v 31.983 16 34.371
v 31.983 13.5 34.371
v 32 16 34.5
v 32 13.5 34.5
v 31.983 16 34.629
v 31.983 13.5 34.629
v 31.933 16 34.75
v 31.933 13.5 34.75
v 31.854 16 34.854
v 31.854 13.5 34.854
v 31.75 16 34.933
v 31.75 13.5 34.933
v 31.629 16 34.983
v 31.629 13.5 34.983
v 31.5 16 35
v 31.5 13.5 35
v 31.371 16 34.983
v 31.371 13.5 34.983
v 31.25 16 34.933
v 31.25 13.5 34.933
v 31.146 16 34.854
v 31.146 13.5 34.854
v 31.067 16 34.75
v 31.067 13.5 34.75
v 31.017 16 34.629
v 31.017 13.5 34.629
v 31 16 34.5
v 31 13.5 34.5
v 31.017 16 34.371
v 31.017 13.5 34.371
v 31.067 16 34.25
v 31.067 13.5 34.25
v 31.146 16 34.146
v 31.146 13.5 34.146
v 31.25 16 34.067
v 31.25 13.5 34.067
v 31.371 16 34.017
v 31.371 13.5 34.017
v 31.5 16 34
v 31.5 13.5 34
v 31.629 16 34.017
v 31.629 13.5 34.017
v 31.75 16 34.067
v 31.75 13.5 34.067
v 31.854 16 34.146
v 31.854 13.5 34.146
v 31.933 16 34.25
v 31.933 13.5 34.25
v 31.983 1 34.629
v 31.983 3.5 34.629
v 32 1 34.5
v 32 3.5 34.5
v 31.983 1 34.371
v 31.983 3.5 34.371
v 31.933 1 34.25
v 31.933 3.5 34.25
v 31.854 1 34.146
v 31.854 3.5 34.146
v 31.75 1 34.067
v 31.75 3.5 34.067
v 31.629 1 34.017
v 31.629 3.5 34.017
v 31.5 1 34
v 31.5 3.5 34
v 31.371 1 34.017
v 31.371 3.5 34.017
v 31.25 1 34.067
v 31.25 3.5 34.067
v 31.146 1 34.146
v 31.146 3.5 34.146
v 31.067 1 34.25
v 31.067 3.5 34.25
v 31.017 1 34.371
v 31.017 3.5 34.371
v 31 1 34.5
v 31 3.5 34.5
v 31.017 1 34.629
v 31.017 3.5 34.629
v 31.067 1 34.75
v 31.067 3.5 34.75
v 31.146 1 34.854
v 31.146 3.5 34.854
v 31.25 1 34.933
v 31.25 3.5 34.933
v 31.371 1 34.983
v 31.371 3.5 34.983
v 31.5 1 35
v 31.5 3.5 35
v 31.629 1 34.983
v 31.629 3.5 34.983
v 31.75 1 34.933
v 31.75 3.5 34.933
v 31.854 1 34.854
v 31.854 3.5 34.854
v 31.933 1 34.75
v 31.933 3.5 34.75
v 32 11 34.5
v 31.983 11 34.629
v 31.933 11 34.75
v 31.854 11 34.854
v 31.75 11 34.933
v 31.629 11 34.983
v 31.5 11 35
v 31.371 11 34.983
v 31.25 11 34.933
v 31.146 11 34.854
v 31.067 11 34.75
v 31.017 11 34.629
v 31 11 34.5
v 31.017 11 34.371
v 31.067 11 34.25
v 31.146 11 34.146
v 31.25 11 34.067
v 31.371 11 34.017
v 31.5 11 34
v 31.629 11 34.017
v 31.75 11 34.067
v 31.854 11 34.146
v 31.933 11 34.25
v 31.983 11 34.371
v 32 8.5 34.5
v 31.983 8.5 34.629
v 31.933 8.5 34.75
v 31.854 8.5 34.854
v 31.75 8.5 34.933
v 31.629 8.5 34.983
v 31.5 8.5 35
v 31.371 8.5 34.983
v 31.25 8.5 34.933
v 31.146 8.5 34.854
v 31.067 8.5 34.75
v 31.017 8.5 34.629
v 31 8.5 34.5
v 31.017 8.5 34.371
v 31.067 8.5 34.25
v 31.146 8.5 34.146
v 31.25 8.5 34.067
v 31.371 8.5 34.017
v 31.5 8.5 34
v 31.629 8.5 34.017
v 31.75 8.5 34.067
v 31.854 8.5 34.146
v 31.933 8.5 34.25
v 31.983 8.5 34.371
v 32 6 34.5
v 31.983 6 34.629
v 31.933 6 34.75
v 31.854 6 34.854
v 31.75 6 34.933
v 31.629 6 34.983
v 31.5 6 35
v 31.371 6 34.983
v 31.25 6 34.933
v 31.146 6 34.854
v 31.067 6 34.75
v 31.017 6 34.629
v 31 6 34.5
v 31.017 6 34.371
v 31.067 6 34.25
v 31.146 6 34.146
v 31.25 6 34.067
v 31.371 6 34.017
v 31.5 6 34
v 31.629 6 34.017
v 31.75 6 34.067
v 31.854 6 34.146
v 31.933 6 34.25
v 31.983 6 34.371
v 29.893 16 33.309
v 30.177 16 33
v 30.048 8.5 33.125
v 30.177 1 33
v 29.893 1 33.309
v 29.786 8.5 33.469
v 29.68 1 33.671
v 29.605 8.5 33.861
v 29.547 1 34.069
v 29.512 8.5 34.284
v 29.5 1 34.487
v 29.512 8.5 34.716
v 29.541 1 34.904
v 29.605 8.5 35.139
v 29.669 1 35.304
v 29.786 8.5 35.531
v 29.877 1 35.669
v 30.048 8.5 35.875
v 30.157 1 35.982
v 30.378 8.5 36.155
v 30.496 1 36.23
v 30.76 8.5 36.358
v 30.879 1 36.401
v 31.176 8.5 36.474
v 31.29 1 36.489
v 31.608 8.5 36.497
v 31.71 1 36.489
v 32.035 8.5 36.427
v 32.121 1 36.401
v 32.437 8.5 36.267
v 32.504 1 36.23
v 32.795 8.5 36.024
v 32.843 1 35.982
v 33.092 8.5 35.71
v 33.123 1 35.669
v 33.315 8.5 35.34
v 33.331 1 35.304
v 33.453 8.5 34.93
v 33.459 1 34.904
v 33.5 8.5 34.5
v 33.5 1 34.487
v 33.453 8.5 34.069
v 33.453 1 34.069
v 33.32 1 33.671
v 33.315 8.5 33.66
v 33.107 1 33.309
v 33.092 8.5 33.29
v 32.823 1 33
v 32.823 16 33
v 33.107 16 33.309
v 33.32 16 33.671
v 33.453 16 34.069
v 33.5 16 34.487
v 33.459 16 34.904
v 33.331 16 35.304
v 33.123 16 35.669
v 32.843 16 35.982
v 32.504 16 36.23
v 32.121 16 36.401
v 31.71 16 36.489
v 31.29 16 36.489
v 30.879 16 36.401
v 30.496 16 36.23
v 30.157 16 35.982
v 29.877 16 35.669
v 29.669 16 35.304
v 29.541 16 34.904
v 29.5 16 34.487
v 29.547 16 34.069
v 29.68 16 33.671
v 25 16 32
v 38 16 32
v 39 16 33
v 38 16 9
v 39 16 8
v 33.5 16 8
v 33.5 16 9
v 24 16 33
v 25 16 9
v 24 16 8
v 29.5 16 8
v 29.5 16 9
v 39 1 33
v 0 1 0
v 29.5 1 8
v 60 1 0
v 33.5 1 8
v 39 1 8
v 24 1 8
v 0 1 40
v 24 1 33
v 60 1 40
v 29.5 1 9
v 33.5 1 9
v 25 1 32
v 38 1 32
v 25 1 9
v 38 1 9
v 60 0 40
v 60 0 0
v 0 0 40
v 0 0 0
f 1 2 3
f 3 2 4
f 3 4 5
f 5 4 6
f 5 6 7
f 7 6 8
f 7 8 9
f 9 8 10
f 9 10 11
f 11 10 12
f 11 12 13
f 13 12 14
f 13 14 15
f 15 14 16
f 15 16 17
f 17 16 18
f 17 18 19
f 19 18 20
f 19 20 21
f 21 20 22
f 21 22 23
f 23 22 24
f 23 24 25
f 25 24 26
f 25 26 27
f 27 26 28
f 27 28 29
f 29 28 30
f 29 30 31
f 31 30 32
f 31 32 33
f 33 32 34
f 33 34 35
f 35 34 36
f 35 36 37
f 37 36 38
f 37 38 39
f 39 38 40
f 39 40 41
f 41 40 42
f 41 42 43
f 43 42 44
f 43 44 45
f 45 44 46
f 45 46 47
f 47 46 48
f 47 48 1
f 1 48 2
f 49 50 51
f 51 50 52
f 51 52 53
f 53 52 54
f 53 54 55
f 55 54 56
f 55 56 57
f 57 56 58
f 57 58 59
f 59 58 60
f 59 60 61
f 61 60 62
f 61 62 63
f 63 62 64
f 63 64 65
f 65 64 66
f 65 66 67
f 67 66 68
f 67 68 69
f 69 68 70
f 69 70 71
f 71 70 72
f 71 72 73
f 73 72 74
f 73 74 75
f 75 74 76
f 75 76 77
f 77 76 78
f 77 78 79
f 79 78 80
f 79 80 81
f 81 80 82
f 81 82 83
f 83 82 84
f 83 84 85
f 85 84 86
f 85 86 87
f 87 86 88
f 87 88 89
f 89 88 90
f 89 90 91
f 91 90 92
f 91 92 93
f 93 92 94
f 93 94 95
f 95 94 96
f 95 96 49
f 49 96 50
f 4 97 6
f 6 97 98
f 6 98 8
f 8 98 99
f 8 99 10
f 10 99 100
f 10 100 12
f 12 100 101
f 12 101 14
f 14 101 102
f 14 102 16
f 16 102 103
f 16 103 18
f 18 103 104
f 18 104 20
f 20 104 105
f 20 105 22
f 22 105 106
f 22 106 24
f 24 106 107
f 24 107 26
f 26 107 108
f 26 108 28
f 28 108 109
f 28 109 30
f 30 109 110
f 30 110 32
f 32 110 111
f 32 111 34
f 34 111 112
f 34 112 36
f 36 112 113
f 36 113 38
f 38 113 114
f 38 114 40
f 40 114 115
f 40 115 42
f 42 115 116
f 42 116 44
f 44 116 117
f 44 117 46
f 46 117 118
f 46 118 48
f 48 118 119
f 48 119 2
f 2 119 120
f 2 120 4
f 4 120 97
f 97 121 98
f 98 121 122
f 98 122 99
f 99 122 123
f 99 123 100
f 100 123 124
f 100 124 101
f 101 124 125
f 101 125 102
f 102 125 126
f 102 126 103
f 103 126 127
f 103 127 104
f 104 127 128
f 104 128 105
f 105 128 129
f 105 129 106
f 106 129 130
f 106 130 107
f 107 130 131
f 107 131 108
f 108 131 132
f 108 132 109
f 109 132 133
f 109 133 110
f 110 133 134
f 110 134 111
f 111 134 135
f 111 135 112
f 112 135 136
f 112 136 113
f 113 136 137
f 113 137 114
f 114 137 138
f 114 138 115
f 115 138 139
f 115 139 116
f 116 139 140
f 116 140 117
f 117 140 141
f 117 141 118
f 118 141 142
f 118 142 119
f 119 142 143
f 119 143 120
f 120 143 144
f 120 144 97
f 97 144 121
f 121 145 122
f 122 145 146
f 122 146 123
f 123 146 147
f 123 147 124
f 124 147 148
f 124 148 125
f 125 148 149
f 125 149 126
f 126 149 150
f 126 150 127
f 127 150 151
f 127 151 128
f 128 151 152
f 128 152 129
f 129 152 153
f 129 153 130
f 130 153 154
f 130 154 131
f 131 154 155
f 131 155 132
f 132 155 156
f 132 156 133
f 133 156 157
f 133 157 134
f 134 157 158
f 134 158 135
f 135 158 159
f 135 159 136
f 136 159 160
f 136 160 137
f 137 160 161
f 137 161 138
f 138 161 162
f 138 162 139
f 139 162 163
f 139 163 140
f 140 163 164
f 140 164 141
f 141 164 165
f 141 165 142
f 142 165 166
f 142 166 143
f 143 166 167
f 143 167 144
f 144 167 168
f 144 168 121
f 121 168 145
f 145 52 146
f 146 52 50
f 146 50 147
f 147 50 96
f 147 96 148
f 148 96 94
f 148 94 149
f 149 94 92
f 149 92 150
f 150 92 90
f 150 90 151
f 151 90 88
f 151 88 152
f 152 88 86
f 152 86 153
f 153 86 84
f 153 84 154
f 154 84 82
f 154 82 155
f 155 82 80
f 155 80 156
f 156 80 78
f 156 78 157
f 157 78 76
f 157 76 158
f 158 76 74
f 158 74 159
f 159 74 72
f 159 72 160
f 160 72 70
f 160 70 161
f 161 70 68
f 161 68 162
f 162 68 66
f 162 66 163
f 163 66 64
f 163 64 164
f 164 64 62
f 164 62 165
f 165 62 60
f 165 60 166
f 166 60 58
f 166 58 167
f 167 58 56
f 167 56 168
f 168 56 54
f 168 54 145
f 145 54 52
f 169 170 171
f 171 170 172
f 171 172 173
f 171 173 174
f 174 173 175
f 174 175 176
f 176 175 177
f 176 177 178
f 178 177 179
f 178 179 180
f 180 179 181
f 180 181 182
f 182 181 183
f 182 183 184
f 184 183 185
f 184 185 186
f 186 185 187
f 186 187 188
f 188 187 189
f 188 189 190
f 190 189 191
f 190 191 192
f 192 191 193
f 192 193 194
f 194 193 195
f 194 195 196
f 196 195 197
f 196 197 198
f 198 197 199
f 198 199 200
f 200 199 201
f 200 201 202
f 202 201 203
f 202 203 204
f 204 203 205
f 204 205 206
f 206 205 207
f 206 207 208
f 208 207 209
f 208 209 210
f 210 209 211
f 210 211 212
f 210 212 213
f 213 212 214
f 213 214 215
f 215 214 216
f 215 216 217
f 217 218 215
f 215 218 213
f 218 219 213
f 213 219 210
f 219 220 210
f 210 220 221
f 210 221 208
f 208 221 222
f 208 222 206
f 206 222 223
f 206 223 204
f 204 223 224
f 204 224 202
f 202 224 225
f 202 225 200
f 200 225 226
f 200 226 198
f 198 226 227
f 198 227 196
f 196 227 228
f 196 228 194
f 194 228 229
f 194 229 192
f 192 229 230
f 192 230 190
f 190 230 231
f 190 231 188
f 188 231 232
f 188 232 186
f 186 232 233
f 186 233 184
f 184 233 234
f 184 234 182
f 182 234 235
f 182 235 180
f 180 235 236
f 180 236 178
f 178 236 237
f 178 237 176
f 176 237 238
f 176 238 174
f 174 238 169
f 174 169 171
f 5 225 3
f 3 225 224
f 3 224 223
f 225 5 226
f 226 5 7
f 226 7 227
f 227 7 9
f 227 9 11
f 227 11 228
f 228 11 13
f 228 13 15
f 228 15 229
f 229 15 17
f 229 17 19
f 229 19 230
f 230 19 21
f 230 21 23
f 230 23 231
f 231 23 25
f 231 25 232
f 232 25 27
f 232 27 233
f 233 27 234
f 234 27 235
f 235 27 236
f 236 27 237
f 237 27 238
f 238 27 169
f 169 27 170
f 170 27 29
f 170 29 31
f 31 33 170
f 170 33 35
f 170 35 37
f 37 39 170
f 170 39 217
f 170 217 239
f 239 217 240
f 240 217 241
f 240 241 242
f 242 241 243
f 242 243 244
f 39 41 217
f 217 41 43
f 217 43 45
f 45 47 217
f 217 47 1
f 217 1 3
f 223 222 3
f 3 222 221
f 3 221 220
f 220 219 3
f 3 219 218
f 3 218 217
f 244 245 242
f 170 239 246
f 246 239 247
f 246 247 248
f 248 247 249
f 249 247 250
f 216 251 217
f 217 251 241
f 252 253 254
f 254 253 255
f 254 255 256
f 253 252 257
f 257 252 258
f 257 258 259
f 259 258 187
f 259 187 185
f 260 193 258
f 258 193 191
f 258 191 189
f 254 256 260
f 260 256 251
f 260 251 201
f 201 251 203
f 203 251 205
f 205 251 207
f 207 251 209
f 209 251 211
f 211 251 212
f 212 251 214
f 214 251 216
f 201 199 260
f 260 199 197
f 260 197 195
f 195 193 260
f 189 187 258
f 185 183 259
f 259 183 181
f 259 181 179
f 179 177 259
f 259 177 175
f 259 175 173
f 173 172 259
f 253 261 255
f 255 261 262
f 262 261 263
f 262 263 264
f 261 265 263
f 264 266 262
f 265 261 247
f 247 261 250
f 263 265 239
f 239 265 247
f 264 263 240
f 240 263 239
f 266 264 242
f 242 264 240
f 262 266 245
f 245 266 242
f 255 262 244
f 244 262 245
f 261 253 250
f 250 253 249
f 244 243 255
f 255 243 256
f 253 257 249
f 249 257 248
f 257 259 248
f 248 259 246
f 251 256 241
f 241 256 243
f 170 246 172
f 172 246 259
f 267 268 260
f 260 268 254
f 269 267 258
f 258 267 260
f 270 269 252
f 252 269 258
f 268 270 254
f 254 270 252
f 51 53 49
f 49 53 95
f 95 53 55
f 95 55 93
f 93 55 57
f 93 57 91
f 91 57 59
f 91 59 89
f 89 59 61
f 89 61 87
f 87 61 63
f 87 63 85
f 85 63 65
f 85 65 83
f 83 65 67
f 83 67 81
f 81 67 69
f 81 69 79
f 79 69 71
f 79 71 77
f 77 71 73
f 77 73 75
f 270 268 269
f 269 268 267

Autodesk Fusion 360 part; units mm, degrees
sketch "Sketch1" plane through (0, 0, 0) normal (0, 1, 0) x (1, 0, 0)
  line L0 (0, 0) -> (0, -40)
  line L1 (0, -40) -> (60, -40)
  line L2 (60, -40) -> (60, 0)
  line L3 (60, 0) -> (0, 0)
  dimension "d1" = 60
  dimension "d2" = 40
  dimension "d3" = 90
  dimension "d4" = 90
extrude "Extrude1" add sketch "Sketch1" along normal blind 1
sketch "Sketch2" plane through (0, 1, 0) normal (0, 1, 0) x (-1, 0, 0)
  line L0 (-60, 0) -> (0, 0)
  line L1 (0, 0) -> (0, 40)
  line L2 (0, 40) -> (-60, 40)
  line L3 (-60, 40) -> (-60, 0)
  line L4 (-24, 8) -> (-39, 8)
  line L5 (-39, 8) -> (-39, 33)
  line L6 (-39, 33) -> (-24, 33)
  line L7 (-24, 33) -> (-24, 8)
  dimension "d18" = 15
  dimension "d19" = 25
  dimension "d20" = 24
  dimension "d21" = 8
extrude "Extrude2" add sketch "Sketch2" along normal blind 10 contours L4 L5 L6 L7
sketch "Sketch3" plane through (0, 11, 0) normal (0, 1, 0) x (-1, 0, 0)
  line L0 (-24, 33) -> (-39, 33)
  line L1 (-39, 33) -> (-39, 8)
  line L2 (-39, 8) -> (-24, 8)
  line L3 (-24, 8) -> (-24, 33)
  line L4 (-25, 9) -> (-38, 9)
  line L5 (-38, 9) -> (-38, 32)
  line L6 (-38, 32) -> (-25, 32)
  line L7 (-25, 32) -> (-25, 9)
  line L8 (-29.5, 8) -> (-29.5, 9)
  line L9 (-33.5, 8) -> (-33.5, 9)
  dimension "d24" = 1
  dimension "d25" = 1
  dimension "d26" = 1
  dimension "d27" = 1
  dimension "d28" = 4
  dimension "d29" = 5.5
extrude "Extrude3" cut sketch "Sketch3" against normal blind 10 contours L2 L4 L8 L9 | L4 L5 L6 L7
sketch "Sketch4" plane through (0, 1, 0) normal (0, 1, 0) x (-1, 0, 0)
  line L0 (-24, 33) -> (-24, 8)
  line L1 (-24, 8) -> (-29.5, 8)
  line L2 (-29.5, 8) -> (-29.5, 9)
  line L3 (-29.5, 9) -> (-25, 9)
  line L4 (-25, 9) -> (-25, 32)
  line L5 (-25, 32) -> (-38, 32)
  line L6 (-38, 32) -> (-38, 9)
  line L7 (-38, 9) -> (-33.5, 9)
  line L8 (-33.5, 9) -> (-33.5, 8)
  line L9 (-33.5, 8) -> (-39, 8)
  line L10 (-39, 8) -> (-39, 33)
  line L11 (-39, 33) -> (-24, 33)
  line L12 (-60, 0) -> (0, 0)
  line L13 (0, 0) -> (0, 40)
  line L14 (0, 40) -> (-60, 40)
  line L15 (-60, 40) -> (-60, 0)
  circle A0 centre (-31.5, 34.5) radius 2
  circle A1 centre (-31.5, 34.5) radius 0.5
  dimension "d32" = 1
  dimension "d33" = 4
  dimension "d35" = 2.5
  dimension "d36" = 6.5
extrude "Extrude4" add sketch "Sketch4" along normal blind 15 contours L11 A0 picked at (-31.4875, 33.3338)
sketch "Sketch5" plane through (0, 0, 0) normal (0, 0, 1) x (1, 0, 0)
extrude "Extrude5" add 1 faces at (31.4875, 16, 33.3338) along direction (0, -1, 0) blind 5
extrude "Extrude6" add 1 faces at (31.059, 11, 32.3333) along direction (0, 1, 0) blind 5
